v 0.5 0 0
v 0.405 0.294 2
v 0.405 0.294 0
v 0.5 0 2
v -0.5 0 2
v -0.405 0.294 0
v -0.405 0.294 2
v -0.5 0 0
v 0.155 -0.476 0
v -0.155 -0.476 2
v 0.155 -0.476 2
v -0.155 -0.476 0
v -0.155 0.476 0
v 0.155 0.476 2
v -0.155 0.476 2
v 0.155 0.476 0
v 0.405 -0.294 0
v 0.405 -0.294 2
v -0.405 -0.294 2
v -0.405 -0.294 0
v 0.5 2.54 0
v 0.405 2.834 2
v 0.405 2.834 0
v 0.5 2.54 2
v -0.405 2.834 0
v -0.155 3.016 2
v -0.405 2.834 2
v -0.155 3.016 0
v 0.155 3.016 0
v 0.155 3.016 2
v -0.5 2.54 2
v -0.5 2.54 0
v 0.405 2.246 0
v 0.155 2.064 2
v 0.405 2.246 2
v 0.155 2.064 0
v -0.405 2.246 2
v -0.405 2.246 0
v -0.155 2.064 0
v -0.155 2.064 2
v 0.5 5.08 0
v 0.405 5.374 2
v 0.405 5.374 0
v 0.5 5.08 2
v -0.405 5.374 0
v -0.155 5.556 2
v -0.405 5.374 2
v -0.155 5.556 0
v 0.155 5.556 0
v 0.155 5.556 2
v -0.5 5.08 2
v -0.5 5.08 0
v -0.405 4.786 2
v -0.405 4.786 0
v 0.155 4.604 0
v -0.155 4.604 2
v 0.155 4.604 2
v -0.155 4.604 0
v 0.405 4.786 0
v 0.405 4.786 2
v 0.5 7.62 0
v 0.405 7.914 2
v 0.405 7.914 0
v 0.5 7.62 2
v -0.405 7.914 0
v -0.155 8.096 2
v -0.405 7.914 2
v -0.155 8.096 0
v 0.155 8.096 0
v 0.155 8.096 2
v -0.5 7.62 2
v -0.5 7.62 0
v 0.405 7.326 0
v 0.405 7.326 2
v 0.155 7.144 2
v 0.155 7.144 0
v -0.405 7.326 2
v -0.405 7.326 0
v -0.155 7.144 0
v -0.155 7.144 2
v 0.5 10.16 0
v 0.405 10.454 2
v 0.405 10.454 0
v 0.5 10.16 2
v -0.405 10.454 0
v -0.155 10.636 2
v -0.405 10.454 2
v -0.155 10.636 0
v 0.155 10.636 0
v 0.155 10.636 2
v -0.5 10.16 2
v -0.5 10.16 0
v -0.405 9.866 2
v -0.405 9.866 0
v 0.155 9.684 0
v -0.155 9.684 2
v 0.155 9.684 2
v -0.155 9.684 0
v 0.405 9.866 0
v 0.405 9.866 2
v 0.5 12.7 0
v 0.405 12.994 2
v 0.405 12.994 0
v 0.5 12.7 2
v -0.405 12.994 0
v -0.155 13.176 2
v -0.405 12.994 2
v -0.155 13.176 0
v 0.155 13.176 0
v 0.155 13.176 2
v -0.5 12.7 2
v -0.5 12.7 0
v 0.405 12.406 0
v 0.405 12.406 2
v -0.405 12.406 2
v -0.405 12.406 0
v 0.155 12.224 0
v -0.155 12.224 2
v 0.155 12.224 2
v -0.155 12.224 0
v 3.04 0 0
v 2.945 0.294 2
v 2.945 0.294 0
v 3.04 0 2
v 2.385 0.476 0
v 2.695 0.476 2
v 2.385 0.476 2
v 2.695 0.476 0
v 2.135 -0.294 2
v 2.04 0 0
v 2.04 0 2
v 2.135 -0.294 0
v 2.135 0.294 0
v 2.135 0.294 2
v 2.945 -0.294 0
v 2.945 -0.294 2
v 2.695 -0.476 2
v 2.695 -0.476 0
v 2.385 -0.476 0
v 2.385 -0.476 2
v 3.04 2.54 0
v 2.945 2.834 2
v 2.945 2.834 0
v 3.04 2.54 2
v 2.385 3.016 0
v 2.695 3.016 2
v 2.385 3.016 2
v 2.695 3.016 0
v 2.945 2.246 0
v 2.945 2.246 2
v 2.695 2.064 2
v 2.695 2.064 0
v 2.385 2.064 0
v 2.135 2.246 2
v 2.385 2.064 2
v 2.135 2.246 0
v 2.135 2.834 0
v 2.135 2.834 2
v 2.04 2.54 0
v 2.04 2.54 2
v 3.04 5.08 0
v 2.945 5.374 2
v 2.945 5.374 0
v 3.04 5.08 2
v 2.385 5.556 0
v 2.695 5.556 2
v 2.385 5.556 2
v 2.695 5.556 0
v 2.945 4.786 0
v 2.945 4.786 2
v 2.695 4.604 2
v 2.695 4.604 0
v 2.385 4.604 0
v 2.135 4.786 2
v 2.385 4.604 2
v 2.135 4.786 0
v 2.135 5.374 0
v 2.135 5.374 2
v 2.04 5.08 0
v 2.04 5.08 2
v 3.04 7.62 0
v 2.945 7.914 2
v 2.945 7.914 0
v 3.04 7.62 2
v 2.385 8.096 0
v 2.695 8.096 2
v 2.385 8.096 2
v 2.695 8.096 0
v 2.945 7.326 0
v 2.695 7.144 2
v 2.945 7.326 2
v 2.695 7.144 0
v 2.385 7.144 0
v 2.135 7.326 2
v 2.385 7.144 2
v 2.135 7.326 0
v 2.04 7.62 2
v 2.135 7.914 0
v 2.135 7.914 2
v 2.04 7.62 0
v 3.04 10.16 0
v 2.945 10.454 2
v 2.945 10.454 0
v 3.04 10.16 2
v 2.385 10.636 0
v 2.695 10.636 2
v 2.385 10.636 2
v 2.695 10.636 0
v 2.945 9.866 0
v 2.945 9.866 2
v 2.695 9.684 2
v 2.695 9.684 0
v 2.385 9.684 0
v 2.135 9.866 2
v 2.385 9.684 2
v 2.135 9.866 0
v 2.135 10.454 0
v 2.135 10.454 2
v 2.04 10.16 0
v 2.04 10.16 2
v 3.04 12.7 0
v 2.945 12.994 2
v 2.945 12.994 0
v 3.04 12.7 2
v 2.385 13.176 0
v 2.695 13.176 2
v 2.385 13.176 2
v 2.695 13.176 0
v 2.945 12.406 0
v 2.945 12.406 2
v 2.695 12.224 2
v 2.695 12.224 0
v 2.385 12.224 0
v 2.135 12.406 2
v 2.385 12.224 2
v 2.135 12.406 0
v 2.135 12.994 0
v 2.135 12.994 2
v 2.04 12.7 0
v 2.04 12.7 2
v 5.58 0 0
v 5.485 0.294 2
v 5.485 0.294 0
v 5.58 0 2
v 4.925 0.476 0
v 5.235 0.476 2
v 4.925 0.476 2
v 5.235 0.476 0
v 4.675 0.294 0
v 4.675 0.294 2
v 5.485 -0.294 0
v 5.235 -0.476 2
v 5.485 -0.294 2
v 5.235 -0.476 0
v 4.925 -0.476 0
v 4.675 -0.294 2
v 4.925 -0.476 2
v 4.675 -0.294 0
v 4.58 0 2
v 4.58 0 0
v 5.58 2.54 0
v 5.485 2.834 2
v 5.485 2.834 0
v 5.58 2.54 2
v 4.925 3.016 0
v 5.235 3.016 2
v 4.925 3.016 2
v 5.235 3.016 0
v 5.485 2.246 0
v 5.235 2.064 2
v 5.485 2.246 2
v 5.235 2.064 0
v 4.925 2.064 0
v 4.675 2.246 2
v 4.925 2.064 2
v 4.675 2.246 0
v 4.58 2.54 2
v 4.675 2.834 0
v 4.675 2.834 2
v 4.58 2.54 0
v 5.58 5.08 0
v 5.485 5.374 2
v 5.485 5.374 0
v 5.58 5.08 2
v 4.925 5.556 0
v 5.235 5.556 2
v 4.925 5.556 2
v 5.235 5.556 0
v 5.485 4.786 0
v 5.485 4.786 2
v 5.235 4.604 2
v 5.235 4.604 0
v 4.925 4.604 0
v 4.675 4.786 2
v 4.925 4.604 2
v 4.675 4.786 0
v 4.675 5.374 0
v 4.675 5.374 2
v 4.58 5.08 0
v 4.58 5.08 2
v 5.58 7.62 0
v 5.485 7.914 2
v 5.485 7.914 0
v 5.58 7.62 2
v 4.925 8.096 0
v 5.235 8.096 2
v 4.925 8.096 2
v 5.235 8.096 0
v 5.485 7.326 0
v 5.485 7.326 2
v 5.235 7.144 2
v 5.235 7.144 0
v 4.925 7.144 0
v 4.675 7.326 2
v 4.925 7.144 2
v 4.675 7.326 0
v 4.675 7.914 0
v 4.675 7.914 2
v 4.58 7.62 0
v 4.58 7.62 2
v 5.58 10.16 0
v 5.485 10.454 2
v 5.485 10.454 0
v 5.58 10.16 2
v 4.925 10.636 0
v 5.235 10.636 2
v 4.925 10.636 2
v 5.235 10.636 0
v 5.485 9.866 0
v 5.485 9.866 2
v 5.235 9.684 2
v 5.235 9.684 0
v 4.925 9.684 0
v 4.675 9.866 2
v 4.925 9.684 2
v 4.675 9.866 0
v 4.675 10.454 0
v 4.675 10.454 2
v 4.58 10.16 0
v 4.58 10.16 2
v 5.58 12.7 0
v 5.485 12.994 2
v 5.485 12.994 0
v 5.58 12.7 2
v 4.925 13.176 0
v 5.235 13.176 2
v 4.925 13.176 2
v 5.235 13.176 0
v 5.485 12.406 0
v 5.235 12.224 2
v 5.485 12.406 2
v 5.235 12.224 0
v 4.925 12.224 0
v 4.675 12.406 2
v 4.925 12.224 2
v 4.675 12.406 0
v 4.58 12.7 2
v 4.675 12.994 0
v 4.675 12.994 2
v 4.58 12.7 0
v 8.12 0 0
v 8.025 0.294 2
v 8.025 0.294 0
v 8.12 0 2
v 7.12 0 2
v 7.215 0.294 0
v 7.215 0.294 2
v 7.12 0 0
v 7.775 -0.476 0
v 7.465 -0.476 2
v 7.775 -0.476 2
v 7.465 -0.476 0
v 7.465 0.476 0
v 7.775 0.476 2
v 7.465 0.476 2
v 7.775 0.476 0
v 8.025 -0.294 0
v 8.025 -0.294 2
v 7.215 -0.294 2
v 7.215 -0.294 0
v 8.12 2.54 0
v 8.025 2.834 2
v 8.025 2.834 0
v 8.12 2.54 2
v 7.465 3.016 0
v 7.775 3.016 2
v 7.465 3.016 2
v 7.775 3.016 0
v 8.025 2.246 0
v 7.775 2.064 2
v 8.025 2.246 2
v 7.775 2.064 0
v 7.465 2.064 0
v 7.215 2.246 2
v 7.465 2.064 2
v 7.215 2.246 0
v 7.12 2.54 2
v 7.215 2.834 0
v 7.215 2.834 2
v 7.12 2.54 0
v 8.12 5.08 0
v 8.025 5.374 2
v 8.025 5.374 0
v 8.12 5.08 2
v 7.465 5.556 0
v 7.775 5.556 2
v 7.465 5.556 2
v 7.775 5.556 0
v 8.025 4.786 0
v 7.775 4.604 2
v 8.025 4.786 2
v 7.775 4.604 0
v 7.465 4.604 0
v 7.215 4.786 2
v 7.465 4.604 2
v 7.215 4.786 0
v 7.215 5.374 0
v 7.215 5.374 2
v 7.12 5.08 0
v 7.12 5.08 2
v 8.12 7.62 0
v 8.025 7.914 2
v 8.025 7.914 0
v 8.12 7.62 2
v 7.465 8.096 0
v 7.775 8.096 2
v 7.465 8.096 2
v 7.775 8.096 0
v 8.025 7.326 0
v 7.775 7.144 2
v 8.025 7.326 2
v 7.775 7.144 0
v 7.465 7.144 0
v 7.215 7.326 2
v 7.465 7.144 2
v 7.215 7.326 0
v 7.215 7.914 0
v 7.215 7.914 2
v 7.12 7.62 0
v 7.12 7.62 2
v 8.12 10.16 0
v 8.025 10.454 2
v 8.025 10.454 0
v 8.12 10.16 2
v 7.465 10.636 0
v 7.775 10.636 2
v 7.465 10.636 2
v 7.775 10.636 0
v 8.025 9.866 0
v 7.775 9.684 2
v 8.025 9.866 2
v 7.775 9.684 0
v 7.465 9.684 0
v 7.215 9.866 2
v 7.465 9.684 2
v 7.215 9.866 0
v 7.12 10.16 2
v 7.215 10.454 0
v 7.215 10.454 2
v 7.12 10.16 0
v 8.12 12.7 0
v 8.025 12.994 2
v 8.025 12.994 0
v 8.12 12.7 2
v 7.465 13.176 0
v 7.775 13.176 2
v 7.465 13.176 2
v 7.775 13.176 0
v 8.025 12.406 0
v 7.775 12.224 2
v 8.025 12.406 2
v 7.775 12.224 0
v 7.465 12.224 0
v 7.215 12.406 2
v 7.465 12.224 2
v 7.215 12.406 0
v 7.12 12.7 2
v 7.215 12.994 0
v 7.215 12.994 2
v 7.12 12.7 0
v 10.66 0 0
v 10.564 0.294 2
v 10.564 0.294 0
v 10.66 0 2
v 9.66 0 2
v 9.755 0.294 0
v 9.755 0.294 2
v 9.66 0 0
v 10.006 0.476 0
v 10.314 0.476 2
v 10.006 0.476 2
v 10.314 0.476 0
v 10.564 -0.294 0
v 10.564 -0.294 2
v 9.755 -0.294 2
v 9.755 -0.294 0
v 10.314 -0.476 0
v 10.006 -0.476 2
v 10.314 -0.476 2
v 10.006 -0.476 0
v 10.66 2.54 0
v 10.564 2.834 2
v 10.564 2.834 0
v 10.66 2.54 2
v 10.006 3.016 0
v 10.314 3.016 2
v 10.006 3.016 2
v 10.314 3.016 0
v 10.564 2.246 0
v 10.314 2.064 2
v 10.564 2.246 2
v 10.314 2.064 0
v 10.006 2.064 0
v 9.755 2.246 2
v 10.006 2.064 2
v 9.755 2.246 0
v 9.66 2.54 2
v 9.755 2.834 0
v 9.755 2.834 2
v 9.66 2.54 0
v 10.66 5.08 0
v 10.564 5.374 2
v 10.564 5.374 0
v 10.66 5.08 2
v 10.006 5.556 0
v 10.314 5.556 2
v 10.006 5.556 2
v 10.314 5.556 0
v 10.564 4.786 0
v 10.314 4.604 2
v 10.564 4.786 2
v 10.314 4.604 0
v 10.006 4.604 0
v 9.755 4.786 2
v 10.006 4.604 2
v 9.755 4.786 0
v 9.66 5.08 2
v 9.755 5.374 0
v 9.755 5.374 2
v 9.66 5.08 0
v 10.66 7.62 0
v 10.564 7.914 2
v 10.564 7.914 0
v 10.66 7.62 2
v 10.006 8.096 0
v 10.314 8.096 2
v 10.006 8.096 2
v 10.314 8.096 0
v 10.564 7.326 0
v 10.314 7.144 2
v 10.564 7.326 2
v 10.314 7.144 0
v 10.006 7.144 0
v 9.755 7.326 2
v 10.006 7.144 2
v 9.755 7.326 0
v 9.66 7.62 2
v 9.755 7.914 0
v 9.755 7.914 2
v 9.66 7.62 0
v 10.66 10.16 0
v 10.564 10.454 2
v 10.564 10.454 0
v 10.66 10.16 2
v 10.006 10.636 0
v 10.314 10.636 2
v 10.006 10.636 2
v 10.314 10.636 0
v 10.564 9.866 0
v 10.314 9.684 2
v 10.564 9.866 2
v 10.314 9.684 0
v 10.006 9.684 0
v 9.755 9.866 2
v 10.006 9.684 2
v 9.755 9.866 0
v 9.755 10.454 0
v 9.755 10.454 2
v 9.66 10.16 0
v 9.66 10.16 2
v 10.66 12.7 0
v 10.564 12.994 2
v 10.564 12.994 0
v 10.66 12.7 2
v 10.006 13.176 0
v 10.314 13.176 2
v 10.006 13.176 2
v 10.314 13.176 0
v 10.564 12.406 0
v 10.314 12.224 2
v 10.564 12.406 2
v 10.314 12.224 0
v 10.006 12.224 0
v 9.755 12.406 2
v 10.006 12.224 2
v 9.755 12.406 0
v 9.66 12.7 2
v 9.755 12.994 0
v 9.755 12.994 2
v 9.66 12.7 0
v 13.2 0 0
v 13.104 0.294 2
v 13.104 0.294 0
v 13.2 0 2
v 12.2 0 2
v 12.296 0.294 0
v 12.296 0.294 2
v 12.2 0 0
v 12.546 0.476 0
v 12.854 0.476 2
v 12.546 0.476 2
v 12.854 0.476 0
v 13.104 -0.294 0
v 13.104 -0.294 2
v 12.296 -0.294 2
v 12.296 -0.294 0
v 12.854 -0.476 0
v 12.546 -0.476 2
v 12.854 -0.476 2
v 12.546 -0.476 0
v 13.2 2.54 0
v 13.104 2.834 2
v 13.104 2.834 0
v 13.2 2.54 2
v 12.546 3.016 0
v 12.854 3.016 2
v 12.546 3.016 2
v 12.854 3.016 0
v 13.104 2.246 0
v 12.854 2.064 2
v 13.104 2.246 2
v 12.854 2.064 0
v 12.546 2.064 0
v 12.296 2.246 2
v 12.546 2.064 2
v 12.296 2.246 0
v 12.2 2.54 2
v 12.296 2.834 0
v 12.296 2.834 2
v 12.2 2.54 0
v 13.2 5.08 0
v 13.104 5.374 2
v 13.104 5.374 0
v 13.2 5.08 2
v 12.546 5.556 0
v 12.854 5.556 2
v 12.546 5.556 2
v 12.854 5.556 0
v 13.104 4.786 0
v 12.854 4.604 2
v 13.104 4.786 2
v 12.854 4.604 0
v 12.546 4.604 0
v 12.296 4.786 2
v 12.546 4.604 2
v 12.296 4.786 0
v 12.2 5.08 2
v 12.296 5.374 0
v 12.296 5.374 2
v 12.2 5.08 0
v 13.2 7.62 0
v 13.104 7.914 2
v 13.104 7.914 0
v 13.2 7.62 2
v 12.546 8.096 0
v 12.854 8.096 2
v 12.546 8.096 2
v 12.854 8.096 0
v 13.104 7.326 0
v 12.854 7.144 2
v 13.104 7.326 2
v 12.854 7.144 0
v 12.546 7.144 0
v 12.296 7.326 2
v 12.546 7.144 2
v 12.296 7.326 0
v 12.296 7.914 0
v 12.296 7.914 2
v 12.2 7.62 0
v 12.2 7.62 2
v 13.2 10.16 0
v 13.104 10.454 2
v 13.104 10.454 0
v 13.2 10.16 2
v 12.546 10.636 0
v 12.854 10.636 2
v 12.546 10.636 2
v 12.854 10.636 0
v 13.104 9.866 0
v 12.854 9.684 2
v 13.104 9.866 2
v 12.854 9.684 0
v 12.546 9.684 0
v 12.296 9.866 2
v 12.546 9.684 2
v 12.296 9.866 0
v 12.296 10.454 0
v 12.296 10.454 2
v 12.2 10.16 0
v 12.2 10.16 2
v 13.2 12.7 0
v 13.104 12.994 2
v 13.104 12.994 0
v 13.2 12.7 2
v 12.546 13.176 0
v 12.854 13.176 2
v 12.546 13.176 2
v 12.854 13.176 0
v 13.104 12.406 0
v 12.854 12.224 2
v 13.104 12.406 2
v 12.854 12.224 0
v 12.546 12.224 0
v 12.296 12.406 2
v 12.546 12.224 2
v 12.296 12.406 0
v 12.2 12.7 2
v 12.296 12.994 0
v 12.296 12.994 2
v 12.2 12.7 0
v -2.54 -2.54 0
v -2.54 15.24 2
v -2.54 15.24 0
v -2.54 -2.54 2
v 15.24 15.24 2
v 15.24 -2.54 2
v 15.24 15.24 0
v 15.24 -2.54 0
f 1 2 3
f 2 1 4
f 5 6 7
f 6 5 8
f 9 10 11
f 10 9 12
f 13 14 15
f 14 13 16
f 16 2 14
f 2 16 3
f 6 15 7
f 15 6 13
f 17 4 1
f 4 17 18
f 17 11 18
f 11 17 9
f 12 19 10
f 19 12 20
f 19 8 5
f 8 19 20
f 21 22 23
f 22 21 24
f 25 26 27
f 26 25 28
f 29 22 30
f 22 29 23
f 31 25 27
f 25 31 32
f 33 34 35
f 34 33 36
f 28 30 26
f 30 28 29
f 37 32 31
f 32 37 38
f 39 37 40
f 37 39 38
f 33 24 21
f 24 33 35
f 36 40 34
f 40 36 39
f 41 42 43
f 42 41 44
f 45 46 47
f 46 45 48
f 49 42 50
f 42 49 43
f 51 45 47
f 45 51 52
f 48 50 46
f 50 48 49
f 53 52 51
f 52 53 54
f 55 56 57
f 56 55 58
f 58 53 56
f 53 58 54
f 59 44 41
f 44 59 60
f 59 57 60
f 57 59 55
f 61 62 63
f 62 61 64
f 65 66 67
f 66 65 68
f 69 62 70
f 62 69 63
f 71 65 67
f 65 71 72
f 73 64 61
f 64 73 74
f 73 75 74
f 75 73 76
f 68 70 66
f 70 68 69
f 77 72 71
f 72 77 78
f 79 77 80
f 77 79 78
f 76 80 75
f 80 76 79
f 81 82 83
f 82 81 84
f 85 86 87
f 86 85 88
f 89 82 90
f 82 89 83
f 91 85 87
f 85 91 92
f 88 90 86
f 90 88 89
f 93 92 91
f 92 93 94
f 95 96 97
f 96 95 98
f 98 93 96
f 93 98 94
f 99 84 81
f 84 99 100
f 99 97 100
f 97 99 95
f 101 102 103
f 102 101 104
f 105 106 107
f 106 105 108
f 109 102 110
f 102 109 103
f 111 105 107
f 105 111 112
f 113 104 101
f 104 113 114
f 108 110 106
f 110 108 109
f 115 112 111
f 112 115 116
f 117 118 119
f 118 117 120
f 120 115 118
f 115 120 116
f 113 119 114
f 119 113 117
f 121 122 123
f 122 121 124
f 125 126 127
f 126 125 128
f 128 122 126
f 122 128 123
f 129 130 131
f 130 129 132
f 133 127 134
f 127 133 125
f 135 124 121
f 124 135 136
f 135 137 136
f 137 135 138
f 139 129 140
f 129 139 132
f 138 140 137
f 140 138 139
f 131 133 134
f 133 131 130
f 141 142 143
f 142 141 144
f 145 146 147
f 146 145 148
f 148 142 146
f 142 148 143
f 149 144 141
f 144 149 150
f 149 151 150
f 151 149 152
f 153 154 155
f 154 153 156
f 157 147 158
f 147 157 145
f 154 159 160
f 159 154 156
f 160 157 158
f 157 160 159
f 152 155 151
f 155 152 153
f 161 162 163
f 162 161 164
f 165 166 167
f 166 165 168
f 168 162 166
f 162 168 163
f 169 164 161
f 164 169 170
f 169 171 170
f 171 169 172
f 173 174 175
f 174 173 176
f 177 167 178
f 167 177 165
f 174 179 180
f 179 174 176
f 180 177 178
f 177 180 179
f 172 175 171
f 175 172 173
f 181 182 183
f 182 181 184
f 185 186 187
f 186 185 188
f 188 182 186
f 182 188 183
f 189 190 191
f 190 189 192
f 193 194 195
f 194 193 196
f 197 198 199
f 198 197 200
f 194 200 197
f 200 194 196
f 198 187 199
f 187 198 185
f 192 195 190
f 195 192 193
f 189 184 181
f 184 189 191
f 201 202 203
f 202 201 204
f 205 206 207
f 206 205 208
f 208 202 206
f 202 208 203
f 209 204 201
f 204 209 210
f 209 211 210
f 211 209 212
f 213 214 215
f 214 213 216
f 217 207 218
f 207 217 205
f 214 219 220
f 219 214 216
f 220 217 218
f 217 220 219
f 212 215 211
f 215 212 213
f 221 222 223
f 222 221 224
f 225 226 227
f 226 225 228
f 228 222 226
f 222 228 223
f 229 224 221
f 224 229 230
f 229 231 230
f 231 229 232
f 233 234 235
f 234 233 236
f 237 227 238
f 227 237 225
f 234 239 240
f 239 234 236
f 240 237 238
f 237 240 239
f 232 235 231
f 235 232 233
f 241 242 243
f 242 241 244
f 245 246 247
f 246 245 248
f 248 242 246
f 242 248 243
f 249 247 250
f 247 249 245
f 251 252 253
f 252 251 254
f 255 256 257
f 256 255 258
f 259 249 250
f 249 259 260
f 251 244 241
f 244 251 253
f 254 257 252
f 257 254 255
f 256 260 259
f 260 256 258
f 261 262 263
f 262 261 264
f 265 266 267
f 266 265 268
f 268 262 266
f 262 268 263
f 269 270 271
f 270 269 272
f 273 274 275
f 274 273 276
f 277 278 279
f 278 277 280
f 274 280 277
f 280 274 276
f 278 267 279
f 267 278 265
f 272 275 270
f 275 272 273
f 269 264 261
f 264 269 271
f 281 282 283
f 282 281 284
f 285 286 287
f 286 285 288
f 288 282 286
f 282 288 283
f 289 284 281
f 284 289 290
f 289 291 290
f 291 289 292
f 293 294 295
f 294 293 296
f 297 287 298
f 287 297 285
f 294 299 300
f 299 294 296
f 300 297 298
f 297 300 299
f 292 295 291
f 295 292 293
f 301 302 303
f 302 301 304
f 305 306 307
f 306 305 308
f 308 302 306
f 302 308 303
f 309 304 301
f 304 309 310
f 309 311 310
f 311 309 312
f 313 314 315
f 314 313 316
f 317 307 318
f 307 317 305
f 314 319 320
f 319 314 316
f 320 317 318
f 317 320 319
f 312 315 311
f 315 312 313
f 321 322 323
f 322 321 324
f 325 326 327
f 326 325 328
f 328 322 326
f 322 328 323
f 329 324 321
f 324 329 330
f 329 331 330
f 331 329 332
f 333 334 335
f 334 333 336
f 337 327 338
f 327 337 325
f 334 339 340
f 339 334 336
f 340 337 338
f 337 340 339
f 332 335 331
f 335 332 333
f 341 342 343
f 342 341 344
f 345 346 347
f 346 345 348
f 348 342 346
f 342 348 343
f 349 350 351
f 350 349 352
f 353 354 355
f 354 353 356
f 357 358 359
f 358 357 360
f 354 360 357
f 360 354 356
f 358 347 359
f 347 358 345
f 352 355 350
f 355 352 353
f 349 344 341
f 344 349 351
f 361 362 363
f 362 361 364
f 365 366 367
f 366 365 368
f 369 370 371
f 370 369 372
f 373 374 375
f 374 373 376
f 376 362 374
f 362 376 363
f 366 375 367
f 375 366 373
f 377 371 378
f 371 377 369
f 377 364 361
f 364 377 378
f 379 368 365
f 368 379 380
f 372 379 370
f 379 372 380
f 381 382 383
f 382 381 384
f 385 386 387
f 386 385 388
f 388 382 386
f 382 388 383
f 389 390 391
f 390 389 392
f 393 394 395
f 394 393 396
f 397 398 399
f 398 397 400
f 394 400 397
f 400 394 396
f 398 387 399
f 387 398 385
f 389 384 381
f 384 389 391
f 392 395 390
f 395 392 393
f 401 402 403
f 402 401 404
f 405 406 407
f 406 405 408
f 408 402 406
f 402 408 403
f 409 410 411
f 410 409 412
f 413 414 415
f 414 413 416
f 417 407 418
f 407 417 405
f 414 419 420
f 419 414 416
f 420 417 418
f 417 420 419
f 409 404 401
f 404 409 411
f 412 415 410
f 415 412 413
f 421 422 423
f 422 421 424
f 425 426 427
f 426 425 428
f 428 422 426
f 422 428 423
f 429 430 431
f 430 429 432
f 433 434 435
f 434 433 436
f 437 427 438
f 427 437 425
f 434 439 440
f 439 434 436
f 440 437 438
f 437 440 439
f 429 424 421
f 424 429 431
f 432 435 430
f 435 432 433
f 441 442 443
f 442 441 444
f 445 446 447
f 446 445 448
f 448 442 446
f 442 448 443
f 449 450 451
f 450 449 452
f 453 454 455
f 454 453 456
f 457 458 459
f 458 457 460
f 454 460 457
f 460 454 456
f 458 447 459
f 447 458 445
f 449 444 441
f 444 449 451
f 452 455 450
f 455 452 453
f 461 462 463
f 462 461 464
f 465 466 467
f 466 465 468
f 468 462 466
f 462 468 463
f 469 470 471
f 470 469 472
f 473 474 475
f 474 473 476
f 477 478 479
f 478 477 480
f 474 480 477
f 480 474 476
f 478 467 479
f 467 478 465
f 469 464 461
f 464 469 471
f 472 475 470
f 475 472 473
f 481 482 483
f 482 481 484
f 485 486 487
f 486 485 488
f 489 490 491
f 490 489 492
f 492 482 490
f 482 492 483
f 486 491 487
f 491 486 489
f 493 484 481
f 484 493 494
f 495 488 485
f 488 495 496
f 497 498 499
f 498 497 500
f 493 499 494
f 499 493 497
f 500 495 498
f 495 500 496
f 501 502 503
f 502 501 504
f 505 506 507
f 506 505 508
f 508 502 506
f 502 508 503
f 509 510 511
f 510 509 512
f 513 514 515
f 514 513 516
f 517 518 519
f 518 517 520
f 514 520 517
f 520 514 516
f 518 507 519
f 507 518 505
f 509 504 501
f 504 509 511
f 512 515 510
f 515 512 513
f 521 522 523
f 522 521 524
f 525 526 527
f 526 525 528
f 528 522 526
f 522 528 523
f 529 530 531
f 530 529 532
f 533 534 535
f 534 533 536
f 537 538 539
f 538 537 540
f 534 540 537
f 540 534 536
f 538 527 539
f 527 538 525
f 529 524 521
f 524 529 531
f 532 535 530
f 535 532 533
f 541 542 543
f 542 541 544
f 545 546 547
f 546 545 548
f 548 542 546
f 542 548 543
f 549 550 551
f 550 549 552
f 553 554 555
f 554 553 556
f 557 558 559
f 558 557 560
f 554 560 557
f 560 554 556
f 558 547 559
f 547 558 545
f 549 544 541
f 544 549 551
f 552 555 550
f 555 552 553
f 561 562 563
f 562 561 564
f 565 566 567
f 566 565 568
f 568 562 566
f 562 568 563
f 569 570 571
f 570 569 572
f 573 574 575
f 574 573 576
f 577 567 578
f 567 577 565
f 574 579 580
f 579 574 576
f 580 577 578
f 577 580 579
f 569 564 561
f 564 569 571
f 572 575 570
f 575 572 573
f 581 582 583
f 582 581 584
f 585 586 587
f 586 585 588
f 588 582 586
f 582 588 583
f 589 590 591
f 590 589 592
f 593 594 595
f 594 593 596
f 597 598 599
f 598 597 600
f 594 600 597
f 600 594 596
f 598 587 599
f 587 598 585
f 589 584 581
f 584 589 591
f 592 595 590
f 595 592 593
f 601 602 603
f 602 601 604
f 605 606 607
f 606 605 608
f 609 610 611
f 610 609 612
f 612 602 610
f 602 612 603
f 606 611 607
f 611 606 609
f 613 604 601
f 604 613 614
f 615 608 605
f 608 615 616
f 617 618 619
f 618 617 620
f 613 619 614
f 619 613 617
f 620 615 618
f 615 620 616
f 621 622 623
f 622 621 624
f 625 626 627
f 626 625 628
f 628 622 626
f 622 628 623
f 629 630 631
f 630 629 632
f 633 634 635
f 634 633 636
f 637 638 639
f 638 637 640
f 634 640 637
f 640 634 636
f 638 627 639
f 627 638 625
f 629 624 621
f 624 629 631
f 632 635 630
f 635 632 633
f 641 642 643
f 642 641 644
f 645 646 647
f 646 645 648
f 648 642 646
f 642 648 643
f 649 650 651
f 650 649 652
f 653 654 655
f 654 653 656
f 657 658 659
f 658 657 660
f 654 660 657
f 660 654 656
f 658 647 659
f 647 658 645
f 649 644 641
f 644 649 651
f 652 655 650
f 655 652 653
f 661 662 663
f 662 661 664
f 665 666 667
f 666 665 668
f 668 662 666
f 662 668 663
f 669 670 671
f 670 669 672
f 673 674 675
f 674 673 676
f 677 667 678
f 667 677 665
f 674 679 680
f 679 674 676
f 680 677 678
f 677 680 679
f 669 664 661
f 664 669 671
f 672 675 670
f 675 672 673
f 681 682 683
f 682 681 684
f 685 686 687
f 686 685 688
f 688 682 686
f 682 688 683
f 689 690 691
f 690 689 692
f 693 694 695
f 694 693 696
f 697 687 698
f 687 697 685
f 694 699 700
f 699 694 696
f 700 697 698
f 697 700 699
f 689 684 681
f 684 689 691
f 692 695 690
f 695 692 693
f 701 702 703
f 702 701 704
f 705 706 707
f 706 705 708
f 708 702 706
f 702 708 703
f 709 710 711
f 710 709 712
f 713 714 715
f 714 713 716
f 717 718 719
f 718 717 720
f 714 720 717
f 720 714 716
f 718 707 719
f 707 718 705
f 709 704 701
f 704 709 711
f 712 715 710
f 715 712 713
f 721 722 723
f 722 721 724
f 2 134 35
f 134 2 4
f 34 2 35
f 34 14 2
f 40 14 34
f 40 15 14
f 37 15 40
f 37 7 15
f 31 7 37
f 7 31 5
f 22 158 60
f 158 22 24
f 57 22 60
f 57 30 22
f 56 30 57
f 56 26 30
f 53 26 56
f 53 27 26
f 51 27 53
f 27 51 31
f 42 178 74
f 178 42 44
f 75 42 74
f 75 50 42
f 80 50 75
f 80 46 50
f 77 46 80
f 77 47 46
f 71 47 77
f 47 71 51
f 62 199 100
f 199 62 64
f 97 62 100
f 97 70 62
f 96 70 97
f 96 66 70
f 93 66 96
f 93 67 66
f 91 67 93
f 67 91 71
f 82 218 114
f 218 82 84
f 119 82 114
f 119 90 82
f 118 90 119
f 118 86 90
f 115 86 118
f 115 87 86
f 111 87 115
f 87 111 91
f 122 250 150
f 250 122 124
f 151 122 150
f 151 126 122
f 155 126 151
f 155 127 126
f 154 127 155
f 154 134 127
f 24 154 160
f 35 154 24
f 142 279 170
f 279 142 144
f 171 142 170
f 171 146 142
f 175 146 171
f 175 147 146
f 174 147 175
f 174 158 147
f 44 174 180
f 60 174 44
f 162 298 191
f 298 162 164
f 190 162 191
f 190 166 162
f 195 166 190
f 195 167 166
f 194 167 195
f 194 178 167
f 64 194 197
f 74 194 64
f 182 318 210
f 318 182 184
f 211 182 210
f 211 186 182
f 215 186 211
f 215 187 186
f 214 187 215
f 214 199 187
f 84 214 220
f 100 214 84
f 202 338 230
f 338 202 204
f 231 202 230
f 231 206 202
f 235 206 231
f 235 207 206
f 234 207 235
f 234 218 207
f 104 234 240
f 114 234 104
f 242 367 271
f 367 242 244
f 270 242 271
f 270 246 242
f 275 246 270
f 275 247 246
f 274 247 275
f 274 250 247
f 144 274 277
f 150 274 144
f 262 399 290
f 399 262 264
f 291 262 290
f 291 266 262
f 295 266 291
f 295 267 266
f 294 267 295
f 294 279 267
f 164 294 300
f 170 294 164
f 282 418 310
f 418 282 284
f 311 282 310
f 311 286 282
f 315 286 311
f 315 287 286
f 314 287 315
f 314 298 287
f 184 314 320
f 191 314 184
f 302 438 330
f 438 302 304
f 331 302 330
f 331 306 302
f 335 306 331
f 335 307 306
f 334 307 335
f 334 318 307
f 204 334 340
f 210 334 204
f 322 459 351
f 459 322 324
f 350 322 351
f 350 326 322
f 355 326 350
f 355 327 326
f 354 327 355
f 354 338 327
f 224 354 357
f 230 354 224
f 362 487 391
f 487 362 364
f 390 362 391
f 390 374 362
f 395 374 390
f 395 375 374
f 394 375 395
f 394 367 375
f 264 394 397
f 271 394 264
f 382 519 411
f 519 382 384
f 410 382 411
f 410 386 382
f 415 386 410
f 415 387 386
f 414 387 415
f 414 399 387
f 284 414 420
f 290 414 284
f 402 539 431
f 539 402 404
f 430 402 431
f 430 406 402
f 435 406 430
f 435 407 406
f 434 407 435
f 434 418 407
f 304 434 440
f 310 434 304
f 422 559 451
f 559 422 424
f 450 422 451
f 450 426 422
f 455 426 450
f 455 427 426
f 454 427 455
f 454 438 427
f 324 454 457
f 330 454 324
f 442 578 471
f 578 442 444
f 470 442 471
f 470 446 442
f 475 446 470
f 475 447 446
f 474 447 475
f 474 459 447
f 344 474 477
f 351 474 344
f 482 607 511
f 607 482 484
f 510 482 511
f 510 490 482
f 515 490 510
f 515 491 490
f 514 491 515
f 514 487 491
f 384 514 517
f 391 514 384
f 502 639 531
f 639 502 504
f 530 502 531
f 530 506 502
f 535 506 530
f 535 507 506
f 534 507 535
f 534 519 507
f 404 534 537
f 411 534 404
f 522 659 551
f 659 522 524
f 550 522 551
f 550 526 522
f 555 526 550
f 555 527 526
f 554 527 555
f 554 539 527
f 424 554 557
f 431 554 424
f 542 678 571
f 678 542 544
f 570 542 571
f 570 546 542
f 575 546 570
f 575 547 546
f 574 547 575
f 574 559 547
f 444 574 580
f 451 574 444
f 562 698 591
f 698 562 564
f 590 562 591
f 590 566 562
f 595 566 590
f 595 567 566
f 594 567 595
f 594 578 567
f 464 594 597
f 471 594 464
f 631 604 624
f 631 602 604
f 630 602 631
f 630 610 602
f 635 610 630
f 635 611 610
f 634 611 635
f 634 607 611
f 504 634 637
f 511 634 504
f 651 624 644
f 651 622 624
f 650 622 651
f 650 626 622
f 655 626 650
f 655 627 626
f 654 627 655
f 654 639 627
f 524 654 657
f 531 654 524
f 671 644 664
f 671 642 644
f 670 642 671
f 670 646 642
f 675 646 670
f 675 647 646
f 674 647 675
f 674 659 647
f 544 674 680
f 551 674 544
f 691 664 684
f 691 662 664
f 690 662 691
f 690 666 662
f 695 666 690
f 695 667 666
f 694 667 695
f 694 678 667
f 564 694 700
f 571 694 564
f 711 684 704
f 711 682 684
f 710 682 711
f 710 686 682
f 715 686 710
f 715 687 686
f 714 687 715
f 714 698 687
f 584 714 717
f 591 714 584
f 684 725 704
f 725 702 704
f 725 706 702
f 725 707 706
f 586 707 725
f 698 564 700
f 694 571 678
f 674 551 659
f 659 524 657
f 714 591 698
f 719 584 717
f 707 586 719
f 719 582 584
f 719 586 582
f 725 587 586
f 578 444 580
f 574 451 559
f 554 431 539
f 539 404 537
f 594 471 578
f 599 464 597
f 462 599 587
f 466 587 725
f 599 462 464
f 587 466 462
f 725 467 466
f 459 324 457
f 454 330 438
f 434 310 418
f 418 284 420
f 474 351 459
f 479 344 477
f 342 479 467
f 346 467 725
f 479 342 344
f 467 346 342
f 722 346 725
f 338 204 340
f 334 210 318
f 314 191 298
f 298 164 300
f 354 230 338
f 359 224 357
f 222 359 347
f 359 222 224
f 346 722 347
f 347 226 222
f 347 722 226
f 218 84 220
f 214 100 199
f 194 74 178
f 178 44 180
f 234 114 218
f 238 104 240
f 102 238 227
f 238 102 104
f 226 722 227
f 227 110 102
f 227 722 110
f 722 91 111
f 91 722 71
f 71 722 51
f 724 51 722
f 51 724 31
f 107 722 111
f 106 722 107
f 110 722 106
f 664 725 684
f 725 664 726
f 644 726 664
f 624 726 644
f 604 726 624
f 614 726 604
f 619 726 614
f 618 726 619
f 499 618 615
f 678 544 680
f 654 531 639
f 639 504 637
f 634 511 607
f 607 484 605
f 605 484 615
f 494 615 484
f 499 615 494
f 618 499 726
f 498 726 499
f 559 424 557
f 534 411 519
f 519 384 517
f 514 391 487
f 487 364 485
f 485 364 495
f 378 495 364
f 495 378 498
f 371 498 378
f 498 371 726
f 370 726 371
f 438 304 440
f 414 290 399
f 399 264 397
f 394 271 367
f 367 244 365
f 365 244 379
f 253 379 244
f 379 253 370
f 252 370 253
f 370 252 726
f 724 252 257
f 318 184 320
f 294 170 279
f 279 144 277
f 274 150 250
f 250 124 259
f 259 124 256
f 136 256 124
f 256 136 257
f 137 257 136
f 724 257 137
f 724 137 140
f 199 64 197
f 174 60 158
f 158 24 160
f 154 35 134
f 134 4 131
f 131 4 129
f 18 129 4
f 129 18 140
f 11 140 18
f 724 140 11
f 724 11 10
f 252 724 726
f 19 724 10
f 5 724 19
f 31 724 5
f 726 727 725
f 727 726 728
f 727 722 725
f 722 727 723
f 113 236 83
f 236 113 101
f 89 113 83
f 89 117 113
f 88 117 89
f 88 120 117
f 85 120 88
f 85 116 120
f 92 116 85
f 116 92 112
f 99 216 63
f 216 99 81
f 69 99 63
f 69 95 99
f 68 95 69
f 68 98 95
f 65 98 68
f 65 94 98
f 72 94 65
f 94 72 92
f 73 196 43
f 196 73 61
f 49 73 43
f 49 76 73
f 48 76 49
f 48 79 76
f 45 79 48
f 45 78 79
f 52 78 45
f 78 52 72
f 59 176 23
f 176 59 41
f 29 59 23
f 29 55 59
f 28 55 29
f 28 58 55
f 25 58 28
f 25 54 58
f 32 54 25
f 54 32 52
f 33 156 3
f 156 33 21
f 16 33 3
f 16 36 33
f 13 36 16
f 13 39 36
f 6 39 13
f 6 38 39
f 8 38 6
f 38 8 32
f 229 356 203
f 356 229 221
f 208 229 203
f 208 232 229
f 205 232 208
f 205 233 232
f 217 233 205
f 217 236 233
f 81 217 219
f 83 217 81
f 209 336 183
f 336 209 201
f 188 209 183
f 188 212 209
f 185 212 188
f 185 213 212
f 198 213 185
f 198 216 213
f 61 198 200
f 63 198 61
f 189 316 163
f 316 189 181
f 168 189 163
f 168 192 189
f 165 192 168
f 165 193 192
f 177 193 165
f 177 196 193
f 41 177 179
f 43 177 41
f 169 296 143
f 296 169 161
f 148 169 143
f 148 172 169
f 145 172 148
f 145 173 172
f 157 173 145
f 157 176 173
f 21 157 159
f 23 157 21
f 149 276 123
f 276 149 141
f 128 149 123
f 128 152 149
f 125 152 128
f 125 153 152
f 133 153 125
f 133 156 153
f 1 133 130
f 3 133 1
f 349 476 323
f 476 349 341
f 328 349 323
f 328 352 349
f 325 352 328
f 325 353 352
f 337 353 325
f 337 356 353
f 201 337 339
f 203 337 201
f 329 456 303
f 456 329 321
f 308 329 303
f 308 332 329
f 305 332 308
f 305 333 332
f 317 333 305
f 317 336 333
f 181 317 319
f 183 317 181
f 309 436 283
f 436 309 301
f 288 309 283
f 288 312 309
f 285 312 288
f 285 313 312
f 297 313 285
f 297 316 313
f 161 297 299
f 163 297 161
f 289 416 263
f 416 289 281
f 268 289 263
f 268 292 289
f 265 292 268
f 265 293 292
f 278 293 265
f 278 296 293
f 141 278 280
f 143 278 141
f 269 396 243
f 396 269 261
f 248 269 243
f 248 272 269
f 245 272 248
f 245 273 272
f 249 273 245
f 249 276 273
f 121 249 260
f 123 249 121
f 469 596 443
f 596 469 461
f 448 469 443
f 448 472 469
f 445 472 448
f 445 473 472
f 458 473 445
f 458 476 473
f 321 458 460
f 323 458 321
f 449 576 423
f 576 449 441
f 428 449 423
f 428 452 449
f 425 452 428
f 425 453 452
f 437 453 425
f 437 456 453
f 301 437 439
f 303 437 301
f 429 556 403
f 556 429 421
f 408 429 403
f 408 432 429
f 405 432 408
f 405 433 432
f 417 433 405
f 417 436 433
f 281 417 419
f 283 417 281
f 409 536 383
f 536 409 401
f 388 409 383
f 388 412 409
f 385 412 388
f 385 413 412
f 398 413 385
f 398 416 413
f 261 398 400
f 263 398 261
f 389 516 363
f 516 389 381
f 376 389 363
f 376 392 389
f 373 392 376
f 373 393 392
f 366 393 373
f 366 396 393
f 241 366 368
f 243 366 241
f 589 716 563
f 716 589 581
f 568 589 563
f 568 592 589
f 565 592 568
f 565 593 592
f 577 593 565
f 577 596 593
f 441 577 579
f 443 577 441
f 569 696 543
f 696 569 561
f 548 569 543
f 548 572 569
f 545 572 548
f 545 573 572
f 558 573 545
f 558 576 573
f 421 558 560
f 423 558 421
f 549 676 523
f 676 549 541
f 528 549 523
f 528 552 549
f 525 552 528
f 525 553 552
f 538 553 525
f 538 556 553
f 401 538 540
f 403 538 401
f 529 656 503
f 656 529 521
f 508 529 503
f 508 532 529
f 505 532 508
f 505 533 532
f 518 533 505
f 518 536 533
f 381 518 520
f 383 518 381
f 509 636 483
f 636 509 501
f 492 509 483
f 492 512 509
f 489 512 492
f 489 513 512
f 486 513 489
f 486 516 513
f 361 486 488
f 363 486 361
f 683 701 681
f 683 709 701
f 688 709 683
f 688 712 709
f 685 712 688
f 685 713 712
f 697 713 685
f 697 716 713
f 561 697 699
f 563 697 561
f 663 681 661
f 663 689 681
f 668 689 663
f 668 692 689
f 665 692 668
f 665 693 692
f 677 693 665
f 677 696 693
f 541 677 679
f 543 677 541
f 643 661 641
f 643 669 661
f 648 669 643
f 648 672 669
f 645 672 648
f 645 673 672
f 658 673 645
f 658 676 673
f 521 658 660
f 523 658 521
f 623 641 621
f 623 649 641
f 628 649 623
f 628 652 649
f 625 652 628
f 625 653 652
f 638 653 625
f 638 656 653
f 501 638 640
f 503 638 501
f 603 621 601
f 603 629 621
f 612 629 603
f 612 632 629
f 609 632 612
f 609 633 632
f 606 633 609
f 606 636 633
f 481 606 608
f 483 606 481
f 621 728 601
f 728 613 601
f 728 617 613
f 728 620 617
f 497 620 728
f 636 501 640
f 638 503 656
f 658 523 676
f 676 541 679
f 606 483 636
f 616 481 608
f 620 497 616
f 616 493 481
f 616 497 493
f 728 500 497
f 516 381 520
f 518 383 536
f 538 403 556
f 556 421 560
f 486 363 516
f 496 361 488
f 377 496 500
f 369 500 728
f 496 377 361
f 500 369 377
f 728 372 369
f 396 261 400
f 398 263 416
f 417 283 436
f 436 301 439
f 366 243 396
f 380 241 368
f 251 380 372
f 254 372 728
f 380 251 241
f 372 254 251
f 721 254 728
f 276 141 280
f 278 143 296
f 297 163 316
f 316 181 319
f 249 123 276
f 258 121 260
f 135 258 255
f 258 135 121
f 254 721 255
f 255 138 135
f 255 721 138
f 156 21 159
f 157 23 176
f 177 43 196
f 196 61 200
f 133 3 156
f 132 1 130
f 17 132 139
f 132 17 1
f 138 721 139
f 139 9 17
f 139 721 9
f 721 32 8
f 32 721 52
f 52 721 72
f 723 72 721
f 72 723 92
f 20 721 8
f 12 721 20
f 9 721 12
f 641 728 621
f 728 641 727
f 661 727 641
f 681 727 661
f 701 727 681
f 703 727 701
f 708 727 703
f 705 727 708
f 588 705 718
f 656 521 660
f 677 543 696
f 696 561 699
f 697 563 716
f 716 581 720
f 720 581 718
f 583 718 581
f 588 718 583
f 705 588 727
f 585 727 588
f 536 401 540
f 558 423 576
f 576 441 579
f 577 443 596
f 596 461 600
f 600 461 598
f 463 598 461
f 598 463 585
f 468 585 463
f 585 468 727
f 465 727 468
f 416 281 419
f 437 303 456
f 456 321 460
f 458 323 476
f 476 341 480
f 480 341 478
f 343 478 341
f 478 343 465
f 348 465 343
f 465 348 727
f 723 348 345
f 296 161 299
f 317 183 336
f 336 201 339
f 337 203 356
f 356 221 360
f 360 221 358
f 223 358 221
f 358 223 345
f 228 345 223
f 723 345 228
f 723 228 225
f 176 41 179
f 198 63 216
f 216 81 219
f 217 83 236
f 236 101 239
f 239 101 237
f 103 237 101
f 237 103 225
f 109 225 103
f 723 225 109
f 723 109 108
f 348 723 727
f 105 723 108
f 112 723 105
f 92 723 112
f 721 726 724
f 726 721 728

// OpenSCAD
difference(){
translate([-2.54,-2.54,0])cube([2.54*7,2.54*7,2]);

for (x = [0:2.54:2.54*5]){
    for (y = [0:2.54:2.54*5]){
        translate([x,y,-5/2])cylinder(r=1/2,h=5,$fn=10);
    }
}

}
